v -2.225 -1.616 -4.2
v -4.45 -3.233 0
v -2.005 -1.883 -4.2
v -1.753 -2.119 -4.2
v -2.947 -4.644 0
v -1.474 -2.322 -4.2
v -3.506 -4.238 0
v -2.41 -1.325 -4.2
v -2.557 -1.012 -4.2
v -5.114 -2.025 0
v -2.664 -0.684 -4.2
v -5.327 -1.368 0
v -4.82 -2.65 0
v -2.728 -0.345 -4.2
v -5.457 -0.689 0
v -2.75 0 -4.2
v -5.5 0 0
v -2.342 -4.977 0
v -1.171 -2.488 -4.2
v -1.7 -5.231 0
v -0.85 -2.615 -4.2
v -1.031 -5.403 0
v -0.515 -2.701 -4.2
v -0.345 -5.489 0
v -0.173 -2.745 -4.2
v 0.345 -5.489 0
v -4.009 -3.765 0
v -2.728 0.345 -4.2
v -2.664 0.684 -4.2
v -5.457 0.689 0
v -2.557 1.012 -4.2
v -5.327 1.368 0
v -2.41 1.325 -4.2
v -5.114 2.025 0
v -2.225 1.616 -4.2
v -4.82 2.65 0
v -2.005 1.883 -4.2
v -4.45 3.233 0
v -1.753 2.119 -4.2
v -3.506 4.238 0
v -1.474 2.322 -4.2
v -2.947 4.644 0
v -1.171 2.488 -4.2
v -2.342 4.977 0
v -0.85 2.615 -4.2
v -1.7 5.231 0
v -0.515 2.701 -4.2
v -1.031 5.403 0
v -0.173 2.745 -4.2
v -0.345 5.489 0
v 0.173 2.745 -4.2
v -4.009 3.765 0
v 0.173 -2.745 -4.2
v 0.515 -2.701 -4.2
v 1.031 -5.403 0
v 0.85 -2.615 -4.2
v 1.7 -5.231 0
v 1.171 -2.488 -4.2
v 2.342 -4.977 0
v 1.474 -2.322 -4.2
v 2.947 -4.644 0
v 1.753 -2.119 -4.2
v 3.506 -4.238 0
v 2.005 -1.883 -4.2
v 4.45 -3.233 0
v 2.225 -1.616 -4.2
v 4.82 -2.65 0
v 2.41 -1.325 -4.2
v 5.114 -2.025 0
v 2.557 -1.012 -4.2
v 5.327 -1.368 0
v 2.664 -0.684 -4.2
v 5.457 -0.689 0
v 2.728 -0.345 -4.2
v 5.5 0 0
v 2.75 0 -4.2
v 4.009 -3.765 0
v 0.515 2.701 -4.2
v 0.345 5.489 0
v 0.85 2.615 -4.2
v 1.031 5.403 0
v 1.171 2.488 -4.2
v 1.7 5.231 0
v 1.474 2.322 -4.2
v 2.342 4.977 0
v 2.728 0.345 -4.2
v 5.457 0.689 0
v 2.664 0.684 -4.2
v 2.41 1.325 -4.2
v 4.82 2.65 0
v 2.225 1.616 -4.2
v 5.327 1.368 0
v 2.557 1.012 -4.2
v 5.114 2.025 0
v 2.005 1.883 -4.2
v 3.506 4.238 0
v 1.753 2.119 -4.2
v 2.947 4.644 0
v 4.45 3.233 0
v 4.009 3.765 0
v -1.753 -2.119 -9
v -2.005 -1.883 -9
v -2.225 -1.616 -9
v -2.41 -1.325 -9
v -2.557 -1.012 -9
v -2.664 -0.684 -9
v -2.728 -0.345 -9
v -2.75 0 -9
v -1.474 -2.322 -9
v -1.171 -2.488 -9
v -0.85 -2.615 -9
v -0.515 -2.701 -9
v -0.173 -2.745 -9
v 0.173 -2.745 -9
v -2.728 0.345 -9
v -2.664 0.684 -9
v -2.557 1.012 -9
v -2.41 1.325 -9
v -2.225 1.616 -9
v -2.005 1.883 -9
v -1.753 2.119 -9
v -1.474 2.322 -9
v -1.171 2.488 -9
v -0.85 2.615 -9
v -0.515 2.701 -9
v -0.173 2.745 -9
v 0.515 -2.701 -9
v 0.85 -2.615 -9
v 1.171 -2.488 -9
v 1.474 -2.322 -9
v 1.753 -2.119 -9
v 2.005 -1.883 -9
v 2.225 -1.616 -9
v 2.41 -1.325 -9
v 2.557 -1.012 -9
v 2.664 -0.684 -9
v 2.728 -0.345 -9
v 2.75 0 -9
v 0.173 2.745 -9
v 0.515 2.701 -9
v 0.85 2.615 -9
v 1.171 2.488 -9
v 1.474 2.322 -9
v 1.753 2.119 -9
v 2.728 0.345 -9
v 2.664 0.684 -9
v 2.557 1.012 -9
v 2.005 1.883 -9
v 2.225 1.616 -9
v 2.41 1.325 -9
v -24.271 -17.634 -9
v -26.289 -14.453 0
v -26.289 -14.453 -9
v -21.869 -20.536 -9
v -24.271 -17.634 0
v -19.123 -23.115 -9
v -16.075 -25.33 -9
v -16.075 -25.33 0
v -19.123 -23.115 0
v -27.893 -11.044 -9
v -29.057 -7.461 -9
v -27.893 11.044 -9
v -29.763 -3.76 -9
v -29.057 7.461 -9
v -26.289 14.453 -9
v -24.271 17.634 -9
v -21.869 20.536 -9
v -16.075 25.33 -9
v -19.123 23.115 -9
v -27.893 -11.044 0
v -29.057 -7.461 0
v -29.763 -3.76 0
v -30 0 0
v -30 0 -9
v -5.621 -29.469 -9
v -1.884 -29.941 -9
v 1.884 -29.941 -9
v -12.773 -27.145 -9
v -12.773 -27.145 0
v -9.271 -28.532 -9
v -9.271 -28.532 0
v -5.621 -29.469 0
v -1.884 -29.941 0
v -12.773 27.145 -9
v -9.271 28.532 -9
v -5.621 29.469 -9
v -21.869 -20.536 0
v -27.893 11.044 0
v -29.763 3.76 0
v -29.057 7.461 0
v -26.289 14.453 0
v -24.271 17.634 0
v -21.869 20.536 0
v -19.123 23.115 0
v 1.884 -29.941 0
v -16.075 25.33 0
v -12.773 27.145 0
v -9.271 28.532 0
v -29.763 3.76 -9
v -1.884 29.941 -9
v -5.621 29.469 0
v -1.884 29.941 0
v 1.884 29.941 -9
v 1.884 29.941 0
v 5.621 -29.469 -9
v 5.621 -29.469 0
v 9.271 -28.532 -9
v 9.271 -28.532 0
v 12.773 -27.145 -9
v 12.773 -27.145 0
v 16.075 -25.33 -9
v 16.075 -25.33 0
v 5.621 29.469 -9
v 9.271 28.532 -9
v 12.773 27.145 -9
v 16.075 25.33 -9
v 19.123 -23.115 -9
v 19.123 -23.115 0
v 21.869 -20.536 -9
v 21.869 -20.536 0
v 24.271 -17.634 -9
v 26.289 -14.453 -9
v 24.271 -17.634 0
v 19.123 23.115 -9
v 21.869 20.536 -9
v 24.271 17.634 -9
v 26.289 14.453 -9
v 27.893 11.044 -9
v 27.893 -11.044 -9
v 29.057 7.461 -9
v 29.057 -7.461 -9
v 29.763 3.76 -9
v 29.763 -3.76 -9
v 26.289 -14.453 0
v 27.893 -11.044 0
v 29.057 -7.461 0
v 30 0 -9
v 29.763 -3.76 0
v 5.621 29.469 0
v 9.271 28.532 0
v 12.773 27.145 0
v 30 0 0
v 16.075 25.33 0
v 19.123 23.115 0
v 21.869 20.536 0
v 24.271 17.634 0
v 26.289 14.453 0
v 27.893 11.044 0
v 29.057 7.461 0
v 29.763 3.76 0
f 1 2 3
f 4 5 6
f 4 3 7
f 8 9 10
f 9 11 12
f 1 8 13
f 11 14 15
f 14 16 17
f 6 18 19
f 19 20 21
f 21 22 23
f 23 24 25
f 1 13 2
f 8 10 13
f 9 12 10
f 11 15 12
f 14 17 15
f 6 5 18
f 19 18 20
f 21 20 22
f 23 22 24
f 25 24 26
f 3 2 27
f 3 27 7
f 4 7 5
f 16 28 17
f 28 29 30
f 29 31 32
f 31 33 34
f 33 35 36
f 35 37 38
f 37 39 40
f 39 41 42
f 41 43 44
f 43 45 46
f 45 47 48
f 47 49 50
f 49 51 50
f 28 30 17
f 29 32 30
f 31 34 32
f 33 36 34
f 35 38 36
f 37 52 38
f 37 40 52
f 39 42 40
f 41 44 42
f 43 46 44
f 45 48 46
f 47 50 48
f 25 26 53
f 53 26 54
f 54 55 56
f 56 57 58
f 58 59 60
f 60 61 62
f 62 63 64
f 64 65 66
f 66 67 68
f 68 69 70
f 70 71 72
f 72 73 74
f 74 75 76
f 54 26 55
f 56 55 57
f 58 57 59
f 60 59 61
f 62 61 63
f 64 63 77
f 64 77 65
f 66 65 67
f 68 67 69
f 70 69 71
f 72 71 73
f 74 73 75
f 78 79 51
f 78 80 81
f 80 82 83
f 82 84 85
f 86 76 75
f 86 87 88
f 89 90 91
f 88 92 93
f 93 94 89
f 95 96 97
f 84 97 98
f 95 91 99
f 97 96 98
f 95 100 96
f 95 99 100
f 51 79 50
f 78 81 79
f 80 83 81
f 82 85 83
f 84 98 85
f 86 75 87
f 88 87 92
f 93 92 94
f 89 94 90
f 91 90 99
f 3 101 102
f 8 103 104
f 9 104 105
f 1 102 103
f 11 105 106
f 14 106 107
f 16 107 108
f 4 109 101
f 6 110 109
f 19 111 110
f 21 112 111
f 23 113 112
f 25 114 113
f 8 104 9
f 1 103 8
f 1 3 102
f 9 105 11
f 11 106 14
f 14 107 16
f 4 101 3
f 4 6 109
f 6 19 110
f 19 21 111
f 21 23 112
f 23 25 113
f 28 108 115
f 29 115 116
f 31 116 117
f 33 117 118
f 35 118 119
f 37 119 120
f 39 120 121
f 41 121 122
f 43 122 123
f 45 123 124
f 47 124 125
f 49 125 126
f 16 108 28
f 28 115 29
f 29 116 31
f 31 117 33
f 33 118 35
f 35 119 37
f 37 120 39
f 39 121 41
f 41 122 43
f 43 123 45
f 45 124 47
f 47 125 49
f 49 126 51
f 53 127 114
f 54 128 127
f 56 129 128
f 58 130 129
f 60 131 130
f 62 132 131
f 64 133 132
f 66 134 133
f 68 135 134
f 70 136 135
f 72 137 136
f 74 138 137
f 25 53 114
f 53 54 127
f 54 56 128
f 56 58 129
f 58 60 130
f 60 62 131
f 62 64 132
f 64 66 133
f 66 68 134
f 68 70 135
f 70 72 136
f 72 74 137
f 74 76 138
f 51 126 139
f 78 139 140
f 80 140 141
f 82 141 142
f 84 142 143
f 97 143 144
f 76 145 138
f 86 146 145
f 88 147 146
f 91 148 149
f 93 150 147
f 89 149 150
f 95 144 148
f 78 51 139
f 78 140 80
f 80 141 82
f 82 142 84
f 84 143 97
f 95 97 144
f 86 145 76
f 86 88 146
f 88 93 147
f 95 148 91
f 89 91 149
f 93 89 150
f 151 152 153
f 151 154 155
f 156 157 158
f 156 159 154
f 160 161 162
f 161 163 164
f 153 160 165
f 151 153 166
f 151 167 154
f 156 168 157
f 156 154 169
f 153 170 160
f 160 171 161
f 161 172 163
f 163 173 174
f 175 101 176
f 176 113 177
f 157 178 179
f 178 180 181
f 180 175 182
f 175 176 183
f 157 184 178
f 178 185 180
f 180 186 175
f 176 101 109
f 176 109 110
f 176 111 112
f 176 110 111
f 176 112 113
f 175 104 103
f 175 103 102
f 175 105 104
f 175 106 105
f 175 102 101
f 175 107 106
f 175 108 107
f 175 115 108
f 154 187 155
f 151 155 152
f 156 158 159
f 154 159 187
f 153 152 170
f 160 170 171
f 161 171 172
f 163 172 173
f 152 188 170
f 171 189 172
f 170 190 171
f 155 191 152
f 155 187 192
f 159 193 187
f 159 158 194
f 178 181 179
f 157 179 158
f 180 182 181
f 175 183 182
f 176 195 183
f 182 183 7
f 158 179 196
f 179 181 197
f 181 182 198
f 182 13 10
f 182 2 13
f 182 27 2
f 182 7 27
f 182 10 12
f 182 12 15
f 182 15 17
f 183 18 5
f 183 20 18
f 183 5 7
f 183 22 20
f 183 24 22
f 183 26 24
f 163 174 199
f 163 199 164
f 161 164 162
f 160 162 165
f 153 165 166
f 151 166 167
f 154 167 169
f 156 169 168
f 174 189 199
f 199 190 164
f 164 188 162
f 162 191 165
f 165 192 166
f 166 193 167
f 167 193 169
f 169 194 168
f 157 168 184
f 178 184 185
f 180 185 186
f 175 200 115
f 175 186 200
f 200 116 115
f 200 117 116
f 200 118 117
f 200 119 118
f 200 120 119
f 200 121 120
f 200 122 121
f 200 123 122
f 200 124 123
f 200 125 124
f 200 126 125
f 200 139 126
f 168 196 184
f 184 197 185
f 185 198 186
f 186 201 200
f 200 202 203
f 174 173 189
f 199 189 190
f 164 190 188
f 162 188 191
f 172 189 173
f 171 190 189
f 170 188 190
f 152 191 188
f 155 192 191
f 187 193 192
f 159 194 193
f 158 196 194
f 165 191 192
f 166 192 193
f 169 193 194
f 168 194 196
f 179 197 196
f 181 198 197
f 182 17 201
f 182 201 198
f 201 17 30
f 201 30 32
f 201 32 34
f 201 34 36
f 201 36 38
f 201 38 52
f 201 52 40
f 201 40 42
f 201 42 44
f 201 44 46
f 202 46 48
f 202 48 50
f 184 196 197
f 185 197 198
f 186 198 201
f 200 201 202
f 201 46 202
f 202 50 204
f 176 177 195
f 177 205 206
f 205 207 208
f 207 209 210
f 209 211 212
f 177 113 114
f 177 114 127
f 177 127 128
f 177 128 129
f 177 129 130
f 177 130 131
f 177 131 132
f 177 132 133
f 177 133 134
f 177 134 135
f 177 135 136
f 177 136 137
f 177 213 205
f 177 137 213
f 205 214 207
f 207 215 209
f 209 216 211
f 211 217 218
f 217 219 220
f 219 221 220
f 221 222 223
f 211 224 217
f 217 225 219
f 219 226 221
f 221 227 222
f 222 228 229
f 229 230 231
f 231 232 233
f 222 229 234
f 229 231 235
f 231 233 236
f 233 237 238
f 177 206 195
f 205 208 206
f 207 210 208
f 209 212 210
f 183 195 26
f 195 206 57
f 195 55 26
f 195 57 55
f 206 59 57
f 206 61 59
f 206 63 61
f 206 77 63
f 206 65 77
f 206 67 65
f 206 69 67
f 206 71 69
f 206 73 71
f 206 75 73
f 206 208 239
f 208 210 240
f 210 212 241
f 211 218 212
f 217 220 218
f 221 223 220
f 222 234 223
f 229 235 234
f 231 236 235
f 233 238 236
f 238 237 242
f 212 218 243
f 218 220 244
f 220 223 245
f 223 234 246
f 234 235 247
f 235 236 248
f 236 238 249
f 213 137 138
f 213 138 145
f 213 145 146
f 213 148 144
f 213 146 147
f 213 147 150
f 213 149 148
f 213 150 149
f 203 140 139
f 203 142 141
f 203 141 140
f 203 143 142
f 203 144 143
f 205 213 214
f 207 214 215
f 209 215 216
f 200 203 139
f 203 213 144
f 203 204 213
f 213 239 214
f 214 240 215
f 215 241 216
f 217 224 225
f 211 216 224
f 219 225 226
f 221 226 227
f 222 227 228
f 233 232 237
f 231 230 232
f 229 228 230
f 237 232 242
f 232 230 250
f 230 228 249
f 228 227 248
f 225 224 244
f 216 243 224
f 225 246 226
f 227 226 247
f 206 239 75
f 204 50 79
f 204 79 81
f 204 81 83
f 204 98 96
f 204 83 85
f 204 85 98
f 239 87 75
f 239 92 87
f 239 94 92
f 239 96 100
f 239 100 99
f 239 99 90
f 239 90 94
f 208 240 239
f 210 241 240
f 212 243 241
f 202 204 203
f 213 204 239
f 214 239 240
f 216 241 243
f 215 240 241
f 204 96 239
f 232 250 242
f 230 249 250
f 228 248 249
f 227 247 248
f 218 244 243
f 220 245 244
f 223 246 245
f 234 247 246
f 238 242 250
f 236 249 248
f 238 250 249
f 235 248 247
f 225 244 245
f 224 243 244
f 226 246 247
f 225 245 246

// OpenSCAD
$fn = 50;

difference() {
	union() {
		translate(v = [0, 0, -9.0]) {
			cylinder(h = 9, r = 30.0);
		}
	}
	union() {
		translate(v = [0, 0, 0]) {
			rotate(a = [0, 0, 0]) {
				difference() {
					union() {
						translate(v = [0, 0, -12.0]) {
							cylinder(h = 12, r = 2.25);
						}
						translate(v = [0, 0, -4.2]) {
							cylinder(h = 4.2, r1 = 2.75, r2 = 5.5);
						}
						translate(v = [0, 0, -12.0]) {
							cylinder(h = 12, r = 2.75);
						}
						translate(v = [0, 0, -12.0]) {
							cylinder(h = 12, r = 2.25);
						}
					}
					union();
				}
			}
		}
	}
}
